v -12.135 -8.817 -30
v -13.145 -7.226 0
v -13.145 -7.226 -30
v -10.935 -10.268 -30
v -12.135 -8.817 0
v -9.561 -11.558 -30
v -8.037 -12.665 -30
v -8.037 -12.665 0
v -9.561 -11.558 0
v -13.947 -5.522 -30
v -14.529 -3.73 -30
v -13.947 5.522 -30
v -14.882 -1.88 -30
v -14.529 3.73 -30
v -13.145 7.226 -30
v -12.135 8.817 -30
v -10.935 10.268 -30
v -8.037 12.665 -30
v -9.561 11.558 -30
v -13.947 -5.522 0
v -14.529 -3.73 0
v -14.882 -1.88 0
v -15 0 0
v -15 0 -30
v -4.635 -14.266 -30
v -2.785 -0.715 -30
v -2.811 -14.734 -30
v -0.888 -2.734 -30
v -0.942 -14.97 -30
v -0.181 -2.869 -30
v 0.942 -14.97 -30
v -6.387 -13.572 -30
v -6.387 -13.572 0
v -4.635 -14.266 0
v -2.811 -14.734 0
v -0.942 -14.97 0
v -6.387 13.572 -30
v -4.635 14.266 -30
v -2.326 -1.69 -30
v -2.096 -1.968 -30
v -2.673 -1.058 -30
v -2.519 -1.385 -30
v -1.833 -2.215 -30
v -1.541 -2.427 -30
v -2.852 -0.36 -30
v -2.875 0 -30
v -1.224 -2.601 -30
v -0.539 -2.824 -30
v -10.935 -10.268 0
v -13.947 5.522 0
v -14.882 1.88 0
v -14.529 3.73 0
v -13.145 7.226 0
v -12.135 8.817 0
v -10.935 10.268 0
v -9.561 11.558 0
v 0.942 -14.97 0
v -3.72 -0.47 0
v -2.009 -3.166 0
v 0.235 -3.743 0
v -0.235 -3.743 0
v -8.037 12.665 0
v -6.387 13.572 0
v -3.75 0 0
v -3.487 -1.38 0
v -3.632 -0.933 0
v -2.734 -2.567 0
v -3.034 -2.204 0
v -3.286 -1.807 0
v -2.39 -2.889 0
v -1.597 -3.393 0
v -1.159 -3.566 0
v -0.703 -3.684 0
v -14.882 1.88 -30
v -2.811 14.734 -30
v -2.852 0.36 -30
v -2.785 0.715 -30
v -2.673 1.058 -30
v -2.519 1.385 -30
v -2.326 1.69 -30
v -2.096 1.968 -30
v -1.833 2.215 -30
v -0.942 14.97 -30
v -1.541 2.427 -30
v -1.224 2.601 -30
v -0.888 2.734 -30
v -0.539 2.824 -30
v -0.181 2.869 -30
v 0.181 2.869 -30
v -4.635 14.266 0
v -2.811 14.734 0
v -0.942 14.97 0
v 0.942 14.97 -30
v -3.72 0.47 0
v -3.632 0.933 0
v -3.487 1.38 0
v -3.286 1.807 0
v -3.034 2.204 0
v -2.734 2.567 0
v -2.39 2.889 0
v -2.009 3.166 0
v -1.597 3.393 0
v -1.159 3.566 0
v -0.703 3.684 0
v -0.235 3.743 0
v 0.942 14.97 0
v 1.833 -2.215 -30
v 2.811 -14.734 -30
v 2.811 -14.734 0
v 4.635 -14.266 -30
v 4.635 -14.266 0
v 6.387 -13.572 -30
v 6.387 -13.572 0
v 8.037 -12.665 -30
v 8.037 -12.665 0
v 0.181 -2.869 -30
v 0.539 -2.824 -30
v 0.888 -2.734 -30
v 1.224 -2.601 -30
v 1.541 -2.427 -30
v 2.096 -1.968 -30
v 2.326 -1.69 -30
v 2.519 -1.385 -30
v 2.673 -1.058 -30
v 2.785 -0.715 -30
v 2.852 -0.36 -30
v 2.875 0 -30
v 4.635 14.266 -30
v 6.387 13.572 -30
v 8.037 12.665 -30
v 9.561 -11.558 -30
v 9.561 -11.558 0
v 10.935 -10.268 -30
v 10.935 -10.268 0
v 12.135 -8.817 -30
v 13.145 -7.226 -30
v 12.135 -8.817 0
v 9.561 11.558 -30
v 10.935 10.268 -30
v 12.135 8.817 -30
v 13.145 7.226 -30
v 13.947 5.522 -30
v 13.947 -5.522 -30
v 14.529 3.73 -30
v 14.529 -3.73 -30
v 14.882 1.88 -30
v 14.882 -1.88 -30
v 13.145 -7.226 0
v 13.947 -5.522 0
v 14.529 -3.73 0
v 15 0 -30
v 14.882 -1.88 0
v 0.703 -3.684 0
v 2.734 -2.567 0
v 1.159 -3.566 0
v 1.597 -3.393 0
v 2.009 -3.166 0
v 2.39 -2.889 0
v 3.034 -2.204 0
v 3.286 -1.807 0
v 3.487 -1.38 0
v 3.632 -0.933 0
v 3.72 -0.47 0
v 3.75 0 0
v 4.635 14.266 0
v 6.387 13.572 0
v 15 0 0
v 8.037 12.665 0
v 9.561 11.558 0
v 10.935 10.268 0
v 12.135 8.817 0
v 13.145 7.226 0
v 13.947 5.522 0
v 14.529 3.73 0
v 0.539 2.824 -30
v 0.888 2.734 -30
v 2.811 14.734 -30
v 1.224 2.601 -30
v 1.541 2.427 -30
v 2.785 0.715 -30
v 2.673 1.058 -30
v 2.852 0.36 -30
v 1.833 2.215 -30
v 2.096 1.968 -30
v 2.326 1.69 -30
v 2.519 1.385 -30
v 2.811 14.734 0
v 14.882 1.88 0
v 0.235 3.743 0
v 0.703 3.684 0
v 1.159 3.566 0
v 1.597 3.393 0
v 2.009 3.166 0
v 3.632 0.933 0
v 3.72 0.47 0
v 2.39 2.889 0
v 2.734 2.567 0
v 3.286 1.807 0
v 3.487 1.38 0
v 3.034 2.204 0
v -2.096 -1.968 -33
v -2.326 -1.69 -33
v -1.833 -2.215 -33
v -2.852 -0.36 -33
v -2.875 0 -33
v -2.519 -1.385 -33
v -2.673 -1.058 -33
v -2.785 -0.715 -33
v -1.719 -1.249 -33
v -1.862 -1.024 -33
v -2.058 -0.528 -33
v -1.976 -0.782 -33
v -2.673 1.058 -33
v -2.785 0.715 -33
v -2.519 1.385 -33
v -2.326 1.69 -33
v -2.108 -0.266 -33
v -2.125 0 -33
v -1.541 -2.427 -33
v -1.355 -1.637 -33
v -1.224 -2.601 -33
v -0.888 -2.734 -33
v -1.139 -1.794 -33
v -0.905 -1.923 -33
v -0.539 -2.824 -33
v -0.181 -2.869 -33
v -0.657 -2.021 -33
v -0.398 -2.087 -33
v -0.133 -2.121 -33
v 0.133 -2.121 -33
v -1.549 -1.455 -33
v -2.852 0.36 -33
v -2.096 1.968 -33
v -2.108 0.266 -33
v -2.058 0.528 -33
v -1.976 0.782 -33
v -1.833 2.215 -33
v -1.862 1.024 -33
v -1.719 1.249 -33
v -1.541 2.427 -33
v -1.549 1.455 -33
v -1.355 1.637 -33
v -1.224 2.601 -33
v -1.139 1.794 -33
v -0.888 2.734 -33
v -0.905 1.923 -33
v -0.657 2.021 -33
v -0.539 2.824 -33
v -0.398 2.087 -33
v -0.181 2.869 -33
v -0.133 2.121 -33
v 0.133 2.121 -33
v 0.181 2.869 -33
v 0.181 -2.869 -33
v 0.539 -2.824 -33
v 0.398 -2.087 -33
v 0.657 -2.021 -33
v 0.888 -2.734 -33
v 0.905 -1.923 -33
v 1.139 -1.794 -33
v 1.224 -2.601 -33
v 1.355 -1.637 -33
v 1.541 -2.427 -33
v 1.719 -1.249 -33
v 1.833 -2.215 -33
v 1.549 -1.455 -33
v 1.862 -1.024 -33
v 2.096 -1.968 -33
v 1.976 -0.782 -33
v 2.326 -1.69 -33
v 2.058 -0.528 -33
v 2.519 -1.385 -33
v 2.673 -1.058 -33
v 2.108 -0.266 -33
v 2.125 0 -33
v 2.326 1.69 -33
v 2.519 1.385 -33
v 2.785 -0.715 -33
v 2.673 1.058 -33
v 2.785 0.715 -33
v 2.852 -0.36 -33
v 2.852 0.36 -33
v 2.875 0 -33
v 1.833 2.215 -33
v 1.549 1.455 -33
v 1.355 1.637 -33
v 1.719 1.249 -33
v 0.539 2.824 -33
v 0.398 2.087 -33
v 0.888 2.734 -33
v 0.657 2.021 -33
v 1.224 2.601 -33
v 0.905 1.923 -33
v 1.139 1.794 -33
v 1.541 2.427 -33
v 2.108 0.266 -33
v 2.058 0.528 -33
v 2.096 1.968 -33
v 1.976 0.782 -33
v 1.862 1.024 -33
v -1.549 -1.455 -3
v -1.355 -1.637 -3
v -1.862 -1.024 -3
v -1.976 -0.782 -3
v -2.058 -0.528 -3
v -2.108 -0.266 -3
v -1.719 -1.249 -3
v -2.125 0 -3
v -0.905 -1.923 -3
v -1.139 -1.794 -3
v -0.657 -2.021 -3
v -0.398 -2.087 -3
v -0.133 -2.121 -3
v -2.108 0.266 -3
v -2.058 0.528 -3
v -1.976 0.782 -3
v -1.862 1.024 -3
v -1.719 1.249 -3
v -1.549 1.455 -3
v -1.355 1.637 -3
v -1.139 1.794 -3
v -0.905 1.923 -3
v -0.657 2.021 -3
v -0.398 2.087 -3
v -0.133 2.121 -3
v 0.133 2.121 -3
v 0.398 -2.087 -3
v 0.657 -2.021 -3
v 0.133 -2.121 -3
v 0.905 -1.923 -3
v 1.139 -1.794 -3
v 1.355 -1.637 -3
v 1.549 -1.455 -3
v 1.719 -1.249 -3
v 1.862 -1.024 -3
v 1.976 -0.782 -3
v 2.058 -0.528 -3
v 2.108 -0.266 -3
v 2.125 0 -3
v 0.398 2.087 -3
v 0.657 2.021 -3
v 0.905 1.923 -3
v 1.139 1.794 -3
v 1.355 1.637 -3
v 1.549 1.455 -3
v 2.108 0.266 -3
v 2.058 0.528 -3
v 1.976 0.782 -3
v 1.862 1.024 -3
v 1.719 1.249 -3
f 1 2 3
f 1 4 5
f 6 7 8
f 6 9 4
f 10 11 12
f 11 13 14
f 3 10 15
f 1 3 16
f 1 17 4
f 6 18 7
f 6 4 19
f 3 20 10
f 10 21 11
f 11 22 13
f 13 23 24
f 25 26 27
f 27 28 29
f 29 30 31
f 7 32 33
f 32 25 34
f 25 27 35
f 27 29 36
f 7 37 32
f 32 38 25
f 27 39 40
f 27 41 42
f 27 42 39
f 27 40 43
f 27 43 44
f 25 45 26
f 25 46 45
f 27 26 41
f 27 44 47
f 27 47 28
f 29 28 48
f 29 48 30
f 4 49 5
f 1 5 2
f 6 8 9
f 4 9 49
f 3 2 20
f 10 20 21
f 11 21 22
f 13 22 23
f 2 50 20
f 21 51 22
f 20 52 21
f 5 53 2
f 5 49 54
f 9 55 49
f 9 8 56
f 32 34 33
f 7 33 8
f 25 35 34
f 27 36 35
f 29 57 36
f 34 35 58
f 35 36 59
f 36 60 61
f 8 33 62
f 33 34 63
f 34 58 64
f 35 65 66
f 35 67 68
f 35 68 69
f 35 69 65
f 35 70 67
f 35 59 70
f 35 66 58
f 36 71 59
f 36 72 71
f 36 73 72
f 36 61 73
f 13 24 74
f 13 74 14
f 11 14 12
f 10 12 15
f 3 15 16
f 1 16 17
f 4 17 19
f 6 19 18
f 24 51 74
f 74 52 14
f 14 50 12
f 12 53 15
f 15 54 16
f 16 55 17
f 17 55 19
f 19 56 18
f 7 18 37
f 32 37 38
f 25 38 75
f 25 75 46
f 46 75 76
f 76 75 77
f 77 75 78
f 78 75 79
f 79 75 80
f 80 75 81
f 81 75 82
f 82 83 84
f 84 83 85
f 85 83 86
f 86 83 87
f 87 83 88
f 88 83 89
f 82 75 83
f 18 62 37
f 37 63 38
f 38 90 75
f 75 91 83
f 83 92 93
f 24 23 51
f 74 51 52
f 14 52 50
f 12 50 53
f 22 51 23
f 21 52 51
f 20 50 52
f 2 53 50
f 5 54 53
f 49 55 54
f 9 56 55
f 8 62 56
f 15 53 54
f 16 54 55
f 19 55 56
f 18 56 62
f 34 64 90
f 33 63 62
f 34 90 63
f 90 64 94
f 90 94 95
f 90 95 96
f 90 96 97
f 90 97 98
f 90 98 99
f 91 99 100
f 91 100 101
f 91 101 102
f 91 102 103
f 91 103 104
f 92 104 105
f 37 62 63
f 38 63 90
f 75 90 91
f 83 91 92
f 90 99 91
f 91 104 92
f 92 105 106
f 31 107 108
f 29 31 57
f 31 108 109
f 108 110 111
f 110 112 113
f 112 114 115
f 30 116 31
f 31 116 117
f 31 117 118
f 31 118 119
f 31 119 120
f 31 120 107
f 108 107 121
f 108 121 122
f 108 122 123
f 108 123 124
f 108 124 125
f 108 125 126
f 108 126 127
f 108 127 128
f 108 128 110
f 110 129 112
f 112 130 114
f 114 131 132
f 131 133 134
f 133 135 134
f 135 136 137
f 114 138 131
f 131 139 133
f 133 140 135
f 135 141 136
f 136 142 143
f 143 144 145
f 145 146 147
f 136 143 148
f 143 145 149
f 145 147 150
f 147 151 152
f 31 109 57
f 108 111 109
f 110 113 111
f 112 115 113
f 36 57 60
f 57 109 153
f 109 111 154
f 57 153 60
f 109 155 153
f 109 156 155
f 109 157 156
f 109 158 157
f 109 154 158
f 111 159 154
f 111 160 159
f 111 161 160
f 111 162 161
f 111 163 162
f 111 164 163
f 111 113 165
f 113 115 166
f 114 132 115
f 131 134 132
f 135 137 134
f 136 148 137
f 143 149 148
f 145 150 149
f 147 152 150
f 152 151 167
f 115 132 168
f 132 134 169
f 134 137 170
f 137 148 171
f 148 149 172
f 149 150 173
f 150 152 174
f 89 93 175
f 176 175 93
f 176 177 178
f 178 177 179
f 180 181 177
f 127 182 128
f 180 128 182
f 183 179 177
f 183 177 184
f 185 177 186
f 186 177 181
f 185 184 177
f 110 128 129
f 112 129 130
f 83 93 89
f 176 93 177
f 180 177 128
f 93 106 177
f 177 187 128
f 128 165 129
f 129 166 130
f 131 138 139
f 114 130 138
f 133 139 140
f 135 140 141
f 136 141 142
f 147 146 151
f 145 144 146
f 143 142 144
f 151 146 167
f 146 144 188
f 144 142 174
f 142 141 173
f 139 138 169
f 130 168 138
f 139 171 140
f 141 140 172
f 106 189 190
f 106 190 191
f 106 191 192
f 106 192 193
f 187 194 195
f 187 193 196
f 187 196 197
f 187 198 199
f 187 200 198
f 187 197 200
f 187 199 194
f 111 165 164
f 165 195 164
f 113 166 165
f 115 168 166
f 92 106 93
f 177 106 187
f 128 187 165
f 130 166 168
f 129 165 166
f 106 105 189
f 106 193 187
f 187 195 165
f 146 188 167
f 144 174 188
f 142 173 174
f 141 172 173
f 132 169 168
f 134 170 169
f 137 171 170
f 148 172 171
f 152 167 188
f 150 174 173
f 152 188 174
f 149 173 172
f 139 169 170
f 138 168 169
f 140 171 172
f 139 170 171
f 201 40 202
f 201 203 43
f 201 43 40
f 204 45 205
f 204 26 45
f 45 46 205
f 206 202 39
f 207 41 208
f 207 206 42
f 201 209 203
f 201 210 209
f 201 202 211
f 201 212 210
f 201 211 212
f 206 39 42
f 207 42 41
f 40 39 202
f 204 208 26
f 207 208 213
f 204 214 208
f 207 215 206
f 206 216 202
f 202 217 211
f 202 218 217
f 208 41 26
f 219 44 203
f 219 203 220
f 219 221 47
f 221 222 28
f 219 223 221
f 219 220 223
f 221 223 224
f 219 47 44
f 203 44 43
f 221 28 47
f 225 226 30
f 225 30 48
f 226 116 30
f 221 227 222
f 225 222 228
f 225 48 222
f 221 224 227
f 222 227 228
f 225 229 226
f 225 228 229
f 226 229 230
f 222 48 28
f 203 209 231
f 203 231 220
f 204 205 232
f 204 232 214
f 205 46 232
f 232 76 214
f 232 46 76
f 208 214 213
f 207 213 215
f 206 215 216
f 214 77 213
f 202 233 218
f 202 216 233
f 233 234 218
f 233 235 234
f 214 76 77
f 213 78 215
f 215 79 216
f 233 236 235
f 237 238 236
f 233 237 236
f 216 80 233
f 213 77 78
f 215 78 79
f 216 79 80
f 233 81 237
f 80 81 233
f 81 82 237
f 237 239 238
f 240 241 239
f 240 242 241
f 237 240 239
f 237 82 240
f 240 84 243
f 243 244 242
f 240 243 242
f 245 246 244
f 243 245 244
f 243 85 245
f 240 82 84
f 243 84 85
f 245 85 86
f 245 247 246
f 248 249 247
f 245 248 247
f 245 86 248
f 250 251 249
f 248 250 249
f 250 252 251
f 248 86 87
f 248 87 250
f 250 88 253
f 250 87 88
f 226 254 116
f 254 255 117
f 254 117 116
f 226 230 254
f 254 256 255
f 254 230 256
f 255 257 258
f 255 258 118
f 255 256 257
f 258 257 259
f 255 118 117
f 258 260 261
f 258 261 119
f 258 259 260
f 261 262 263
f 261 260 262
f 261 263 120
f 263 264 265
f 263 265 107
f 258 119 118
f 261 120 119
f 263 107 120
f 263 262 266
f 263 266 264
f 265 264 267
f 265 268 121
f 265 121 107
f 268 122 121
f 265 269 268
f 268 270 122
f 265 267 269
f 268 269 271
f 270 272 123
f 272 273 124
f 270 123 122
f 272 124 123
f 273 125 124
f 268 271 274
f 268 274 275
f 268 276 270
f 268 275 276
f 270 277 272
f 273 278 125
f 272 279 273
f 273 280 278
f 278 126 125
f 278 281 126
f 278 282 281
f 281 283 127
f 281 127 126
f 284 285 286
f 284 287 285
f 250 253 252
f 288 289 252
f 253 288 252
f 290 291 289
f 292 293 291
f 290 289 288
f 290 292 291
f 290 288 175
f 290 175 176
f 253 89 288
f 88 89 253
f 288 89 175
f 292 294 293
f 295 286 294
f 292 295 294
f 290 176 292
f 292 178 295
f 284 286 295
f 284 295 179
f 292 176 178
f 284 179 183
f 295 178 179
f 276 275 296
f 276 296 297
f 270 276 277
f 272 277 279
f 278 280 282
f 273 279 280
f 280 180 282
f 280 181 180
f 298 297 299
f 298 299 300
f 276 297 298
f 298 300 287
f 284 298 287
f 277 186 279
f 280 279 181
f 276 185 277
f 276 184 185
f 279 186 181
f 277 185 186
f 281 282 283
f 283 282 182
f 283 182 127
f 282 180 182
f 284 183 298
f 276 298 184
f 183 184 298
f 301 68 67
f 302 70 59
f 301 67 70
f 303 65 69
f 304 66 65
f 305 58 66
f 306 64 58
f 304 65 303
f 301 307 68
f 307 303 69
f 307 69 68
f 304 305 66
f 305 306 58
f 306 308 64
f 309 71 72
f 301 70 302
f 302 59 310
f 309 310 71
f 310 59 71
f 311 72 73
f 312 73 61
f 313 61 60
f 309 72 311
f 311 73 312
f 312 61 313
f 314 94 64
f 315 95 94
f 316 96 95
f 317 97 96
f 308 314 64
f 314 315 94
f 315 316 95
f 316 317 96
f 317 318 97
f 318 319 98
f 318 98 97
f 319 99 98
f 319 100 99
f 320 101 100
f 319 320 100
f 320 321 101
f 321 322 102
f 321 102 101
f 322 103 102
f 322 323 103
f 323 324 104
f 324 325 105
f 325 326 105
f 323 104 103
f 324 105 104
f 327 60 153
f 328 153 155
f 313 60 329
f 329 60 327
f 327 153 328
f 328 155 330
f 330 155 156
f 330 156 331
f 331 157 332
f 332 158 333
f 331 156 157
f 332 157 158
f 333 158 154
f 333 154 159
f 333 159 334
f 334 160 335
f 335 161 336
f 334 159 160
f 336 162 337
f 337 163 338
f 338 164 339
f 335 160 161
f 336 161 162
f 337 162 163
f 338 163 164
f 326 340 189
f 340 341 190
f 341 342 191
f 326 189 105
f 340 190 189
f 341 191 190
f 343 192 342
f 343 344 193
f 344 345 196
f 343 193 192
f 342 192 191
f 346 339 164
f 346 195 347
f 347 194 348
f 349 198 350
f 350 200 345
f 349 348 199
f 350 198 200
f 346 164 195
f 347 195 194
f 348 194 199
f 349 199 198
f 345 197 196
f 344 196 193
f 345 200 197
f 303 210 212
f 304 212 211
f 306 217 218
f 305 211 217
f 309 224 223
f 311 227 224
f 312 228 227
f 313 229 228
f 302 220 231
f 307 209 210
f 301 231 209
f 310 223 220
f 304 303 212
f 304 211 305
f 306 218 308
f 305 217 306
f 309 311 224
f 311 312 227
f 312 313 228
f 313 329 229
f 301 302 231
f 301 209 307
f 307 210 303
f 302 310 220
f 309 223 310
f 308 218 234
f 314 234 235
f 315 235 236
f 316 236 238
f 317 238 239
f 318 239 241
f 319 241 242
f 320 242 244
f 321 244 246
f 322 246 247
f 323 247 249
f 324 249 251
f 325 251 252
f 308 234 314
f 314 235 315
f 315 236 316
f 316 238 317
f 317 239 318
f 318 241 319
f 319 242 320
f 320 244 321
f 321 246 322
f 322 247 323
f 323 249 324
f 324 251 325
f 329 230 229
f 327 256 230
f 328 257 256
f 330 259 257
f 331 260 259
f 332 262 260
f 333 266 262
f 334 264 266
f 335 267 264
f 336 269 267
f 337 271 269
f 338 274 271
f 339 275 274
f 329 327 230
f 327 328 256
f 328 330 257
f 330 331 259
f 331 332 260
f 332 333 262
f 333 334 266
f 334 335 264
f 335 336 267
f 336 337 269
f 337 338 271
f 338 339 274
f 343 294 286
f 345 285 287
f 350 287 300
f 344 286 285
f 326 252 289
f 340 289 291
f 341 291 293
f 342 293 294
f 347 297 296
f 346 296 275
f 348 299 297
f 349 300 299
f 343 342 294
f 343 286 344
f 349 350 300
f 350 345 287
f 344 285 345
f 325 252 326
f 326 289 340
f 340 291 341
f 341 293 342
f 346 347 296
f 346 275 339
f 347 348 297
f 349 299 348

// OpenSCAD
$fn = 50;

difference() {
	union() {
		translate(v = [0, 0, -30.0]) {
			cylinder(h = 30, r = 15.0);
		}
		#translate(v = [0, 0, -33.0]) {
			cylinder(h = 33, r = 2.875);
		}
	}
	union() {
		translate(v = [0, 0, 0]) {
			rotate(a = [0, 0, 0]) {
				difference() {
					union() {
						translate(v = [0, 0, -33.0]) {
							cylinder(h = 33, r = 2.0);
						}
						translate(v = [0, 0, -3]) {
							cylinder(h = 3, r1 = 2.125, r2 = 3.75);
						}
						translate(v = [0, 0, -33.0]) {
							cylinder(h = 33, r = 2.125);
						}
						translate(v = [0, 0, -33.0]) {
							cylinder(h = 33, r = 2.0);
						}
					}
					union();
				}
			}
		}
	}
}
